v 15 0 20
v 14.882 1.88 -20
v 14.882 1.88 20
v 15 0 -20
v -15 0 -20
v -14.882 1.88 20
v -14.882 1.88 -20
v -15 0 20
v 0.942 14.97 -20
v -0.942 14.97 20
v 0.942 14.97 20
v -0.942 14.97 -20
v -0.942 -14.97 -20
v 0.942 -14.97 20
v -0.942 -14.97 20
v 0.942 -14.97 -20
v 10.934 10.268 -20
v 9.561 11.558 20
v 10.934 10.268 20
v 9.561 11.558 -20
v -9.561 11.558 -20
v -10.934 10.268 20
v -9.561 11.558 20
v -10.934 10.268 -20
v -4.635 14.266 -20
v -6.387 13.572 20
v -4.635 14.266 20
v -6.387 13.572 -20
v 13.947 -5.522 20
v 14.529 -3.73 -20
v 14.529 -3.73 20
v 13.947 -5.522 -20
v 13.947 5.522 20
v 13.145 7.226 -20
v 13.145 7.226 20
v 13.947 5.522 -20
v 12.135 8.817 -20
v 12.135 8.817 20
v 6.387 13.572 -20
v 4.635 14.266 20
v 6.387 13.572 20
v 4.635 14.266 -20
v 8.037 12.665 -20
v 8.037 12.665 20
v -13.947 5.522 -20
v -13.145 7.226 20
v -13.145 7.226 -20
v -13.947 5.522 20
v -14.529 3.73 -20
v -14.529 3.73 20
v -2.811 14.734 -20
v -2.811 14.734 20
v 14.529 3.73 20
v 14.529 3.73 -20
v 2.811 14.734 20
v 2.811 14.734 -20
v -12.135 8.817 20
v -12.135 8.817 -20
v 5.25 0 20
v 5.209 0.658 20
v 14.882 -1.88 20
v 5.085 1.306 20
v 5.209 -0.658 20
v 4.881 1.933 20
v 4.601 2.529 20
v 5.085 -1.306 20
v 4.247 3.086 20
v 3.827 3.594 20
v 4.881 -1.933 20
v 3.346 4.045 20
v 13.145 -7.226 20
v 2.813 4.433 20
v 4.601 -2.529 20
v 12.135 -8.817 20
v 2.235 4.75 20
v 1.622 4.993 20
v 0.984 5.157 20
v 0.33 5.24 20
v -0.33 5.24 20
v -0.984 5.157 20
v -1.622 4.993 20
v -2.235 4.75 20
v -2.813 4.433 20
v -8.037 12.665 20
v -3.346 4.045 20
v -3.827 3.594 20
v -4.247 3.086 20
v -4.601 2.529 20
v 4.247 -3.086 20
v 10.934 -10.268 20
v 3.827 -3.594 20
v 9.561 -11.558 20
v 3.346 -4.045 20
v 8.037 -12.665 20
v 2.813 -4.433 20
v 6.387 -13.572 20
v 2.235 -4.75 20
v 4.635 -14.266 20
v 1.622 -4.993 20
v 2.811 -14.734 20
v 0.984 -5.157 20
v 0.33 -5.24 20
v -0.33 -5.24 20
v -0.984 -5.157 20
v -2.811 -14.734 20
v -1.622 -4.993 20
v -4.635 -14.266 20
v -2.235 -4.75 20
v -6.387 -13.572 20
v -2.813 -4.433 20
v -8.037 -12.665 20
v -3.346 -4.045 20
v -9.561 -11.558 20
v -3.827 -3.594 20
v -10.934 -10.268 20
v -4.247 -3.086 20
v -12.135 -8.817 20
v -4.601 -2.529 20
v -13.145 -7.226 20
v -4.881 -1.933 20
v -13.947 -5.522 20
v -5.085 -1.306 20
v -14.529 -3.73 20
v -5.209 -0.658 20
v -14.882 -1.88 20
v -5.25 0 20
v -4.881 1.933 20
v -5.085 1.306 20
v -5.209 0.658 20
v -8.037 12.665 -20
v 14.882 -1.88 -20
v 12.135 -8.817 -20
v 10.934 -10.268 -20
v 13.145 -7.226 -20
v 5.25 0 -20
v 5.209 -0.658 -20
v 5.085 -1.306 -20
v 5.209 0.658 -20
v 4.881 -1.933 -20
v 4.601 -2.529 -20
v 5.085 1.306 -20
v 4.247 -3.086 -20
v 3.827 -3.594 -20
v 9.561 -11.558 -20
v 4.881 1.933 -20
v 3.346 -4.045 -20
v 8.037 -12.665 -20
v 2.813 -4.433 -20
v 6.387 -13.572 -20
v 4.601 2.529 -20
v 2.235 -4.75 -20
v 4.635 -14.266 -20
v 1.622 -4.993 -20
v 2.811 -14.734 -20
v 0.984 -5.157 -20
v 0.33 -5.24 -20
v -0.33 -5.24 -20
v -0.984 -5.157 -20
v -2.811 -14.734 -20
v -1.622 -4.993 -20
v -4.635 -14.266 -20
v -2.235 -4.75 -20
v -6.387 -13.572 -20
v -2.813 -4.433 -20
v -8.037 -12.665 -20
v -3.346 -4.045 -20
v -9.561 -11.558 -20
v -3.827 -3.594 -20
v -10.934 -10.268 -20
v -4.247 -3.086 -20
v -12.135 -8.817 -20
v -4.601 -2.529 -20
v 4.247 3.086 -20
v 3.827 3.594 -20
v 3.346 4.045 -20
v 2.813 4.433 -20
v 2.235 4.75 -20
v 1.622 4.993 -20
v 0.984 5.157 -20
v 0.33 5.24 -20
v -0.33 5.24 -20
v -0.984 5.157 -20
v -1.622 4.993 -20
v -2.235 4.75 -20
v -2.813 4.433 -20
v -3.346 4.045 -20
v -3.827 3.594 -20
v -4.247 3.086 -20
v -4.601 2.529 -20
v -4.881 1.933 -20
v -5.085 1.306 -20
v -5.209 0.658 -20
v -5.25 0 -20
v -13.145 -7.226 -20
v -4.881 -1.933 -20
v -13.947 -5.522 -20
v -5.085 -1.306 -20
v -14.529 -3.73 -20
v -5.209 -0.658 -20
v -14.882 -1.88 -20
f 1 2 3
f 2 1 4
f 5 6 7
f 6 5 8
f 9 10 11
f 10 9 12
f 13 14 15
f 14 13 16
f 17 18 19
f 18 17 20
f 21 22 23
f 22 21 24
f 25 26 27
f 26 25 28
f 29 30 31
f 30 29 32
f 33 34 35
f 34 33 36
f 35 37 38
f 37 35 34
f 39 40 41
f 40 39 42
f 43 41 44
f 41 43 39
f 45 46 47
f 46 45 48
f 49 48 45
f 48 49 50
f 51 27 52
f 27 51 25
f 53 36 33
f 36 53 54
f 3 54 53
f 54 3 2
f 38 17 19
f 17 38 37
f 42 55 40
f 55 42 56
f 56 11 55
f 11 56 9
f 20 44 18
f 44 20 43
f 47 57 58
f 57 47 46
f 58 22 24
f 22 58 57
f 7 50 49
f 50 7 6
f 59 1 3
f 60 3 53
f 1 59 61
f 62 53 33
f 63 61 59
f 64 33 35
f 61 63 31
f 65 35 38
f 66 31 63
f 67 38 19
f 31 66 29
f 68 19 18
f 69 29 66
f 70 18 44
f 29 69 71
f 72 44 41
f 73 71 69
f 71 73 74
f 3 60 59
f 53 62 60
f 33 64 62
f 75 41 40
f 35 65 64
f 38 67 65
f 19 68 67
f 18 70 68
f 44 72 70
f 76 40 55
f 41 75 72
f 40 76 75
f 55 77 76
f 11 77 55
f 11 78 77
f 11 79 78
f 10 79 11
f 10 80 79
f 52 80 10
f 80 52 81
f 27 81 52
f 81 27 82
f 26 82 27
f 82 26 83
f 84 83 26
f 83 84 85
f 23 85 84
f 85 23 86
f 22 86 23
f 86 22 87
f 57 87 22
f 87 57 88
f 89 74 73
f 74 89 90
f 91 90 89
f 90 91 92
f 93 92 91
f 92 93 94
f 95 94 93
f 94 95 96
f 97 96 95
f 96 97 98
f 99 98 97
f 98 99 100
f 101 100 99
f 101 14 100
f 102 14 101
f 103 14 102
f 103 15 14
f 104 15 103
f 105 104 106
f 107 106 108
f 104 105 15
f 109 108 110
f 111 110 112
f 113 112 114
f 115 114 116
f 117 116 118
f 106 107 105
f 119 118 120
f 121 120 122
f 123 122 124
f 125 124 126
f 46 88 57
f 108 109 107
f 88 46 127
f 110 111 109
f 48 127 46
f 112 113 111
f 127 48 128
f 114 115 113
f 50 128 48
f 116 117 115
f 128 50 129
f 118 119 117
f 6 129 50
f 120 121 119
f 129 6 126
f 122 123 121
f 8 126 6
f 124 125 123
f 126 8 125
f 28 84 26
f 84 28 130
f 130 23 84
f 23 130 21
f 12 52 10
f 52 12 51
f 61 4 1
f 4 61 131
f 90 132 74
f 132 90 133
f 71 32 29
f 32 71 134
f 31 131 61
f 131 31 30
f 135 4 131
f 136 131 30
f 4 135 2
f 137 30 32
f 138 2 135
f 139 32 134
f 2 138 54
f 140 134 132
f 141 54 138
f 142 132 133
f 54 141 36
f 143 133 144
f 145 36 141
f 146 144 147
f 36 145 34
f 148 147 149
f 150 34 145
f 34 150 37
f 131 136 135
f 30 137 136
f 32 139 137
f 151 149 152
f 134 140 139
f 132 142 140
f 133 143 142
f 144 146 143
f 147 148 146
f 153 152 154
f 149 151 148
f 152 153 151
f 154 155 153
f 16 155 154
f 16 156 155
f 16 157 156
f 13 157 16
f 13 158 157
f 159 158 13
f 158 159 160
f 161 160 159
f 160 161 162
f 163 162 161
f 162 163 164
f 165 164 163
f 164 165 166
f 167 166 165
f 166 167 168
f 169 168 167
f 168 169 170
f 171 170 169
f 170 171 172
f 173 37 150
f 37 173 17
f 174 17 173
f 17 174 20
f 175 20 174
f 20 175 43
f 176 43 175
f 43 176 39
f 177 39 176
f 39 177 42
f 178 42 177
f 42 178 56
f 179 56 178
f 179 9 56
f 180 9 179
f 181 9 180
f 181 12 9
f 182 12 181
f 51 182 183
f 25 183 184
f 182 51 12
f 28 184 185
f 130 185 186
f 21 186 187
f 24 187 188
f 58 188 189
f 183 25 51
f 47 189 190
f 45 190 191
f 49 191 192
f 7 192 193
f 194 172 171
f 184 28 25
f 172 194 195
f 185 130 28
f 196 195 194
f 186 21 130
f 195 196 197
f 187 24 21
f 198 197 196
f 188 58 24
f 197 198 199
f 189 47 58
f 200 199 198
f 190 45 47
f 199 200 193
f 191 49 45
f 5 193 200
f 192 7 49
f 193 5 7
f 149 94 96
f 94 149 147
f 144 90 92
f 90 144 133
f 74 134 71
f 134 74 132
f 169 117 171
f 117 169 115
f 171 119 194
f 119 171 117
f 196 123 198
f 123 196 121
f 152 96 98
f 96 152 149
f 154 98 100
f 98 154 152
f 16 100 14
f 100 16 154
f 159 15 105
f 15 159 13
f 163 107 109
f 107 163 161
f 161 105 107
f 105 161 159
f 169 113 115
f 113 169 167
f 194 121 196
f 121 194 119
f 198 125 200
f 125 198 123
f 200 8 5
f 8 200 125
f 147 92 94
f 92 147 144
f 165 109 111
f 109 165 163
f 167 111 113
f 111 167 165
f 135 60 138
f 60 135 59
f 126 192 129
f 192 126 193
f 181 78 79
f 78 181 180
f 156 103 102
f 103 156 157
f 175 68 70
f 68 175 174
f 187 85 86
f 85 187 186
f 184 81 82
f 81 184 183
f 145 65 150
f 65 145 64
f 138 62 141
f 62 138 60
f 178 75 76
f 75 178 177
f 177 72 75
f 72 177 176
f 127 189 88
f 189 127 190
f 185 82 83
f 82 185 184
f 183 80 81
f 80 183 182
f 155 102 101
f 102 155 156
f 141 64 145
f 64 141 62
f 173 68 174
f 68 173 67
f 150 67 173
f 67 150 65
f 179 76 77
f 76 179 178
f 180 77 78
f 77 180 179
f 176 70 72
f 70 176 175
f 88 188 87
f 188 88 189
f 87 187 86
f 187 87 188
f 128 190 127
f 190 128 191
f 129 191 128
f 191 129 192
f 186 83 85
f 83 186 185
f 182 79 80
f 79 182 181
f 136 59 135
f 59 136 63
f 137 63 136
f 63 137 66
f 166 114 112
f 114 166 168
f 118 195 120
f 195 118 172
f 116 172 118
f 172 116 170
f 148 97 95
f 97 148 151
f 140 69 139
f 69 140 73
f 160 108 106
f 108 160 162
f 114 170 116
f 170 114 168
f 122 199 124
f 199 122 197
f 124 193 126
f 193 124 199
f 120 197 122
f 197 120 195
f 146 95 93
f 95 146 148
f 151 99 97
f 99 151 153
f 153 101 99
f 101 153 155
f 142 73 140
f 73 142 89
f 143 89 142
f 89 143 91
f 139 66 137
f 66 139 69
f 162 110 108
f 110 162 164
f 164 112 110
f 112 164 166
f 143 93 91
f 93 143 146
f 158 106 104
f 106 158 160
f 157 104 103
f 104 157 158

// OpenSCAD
$fn = 50;


difference() {
	union() {
		translate(v = [0, 0, -20.0000000000]) {
			cylinder(h = 40, r = 15.0000000000);
		}
	}
	union() {
		translate(v = [0, 0, -100.0000000000]) {
			cylinder(h = 200, r = 5.2500000000);
		}
	}
}
